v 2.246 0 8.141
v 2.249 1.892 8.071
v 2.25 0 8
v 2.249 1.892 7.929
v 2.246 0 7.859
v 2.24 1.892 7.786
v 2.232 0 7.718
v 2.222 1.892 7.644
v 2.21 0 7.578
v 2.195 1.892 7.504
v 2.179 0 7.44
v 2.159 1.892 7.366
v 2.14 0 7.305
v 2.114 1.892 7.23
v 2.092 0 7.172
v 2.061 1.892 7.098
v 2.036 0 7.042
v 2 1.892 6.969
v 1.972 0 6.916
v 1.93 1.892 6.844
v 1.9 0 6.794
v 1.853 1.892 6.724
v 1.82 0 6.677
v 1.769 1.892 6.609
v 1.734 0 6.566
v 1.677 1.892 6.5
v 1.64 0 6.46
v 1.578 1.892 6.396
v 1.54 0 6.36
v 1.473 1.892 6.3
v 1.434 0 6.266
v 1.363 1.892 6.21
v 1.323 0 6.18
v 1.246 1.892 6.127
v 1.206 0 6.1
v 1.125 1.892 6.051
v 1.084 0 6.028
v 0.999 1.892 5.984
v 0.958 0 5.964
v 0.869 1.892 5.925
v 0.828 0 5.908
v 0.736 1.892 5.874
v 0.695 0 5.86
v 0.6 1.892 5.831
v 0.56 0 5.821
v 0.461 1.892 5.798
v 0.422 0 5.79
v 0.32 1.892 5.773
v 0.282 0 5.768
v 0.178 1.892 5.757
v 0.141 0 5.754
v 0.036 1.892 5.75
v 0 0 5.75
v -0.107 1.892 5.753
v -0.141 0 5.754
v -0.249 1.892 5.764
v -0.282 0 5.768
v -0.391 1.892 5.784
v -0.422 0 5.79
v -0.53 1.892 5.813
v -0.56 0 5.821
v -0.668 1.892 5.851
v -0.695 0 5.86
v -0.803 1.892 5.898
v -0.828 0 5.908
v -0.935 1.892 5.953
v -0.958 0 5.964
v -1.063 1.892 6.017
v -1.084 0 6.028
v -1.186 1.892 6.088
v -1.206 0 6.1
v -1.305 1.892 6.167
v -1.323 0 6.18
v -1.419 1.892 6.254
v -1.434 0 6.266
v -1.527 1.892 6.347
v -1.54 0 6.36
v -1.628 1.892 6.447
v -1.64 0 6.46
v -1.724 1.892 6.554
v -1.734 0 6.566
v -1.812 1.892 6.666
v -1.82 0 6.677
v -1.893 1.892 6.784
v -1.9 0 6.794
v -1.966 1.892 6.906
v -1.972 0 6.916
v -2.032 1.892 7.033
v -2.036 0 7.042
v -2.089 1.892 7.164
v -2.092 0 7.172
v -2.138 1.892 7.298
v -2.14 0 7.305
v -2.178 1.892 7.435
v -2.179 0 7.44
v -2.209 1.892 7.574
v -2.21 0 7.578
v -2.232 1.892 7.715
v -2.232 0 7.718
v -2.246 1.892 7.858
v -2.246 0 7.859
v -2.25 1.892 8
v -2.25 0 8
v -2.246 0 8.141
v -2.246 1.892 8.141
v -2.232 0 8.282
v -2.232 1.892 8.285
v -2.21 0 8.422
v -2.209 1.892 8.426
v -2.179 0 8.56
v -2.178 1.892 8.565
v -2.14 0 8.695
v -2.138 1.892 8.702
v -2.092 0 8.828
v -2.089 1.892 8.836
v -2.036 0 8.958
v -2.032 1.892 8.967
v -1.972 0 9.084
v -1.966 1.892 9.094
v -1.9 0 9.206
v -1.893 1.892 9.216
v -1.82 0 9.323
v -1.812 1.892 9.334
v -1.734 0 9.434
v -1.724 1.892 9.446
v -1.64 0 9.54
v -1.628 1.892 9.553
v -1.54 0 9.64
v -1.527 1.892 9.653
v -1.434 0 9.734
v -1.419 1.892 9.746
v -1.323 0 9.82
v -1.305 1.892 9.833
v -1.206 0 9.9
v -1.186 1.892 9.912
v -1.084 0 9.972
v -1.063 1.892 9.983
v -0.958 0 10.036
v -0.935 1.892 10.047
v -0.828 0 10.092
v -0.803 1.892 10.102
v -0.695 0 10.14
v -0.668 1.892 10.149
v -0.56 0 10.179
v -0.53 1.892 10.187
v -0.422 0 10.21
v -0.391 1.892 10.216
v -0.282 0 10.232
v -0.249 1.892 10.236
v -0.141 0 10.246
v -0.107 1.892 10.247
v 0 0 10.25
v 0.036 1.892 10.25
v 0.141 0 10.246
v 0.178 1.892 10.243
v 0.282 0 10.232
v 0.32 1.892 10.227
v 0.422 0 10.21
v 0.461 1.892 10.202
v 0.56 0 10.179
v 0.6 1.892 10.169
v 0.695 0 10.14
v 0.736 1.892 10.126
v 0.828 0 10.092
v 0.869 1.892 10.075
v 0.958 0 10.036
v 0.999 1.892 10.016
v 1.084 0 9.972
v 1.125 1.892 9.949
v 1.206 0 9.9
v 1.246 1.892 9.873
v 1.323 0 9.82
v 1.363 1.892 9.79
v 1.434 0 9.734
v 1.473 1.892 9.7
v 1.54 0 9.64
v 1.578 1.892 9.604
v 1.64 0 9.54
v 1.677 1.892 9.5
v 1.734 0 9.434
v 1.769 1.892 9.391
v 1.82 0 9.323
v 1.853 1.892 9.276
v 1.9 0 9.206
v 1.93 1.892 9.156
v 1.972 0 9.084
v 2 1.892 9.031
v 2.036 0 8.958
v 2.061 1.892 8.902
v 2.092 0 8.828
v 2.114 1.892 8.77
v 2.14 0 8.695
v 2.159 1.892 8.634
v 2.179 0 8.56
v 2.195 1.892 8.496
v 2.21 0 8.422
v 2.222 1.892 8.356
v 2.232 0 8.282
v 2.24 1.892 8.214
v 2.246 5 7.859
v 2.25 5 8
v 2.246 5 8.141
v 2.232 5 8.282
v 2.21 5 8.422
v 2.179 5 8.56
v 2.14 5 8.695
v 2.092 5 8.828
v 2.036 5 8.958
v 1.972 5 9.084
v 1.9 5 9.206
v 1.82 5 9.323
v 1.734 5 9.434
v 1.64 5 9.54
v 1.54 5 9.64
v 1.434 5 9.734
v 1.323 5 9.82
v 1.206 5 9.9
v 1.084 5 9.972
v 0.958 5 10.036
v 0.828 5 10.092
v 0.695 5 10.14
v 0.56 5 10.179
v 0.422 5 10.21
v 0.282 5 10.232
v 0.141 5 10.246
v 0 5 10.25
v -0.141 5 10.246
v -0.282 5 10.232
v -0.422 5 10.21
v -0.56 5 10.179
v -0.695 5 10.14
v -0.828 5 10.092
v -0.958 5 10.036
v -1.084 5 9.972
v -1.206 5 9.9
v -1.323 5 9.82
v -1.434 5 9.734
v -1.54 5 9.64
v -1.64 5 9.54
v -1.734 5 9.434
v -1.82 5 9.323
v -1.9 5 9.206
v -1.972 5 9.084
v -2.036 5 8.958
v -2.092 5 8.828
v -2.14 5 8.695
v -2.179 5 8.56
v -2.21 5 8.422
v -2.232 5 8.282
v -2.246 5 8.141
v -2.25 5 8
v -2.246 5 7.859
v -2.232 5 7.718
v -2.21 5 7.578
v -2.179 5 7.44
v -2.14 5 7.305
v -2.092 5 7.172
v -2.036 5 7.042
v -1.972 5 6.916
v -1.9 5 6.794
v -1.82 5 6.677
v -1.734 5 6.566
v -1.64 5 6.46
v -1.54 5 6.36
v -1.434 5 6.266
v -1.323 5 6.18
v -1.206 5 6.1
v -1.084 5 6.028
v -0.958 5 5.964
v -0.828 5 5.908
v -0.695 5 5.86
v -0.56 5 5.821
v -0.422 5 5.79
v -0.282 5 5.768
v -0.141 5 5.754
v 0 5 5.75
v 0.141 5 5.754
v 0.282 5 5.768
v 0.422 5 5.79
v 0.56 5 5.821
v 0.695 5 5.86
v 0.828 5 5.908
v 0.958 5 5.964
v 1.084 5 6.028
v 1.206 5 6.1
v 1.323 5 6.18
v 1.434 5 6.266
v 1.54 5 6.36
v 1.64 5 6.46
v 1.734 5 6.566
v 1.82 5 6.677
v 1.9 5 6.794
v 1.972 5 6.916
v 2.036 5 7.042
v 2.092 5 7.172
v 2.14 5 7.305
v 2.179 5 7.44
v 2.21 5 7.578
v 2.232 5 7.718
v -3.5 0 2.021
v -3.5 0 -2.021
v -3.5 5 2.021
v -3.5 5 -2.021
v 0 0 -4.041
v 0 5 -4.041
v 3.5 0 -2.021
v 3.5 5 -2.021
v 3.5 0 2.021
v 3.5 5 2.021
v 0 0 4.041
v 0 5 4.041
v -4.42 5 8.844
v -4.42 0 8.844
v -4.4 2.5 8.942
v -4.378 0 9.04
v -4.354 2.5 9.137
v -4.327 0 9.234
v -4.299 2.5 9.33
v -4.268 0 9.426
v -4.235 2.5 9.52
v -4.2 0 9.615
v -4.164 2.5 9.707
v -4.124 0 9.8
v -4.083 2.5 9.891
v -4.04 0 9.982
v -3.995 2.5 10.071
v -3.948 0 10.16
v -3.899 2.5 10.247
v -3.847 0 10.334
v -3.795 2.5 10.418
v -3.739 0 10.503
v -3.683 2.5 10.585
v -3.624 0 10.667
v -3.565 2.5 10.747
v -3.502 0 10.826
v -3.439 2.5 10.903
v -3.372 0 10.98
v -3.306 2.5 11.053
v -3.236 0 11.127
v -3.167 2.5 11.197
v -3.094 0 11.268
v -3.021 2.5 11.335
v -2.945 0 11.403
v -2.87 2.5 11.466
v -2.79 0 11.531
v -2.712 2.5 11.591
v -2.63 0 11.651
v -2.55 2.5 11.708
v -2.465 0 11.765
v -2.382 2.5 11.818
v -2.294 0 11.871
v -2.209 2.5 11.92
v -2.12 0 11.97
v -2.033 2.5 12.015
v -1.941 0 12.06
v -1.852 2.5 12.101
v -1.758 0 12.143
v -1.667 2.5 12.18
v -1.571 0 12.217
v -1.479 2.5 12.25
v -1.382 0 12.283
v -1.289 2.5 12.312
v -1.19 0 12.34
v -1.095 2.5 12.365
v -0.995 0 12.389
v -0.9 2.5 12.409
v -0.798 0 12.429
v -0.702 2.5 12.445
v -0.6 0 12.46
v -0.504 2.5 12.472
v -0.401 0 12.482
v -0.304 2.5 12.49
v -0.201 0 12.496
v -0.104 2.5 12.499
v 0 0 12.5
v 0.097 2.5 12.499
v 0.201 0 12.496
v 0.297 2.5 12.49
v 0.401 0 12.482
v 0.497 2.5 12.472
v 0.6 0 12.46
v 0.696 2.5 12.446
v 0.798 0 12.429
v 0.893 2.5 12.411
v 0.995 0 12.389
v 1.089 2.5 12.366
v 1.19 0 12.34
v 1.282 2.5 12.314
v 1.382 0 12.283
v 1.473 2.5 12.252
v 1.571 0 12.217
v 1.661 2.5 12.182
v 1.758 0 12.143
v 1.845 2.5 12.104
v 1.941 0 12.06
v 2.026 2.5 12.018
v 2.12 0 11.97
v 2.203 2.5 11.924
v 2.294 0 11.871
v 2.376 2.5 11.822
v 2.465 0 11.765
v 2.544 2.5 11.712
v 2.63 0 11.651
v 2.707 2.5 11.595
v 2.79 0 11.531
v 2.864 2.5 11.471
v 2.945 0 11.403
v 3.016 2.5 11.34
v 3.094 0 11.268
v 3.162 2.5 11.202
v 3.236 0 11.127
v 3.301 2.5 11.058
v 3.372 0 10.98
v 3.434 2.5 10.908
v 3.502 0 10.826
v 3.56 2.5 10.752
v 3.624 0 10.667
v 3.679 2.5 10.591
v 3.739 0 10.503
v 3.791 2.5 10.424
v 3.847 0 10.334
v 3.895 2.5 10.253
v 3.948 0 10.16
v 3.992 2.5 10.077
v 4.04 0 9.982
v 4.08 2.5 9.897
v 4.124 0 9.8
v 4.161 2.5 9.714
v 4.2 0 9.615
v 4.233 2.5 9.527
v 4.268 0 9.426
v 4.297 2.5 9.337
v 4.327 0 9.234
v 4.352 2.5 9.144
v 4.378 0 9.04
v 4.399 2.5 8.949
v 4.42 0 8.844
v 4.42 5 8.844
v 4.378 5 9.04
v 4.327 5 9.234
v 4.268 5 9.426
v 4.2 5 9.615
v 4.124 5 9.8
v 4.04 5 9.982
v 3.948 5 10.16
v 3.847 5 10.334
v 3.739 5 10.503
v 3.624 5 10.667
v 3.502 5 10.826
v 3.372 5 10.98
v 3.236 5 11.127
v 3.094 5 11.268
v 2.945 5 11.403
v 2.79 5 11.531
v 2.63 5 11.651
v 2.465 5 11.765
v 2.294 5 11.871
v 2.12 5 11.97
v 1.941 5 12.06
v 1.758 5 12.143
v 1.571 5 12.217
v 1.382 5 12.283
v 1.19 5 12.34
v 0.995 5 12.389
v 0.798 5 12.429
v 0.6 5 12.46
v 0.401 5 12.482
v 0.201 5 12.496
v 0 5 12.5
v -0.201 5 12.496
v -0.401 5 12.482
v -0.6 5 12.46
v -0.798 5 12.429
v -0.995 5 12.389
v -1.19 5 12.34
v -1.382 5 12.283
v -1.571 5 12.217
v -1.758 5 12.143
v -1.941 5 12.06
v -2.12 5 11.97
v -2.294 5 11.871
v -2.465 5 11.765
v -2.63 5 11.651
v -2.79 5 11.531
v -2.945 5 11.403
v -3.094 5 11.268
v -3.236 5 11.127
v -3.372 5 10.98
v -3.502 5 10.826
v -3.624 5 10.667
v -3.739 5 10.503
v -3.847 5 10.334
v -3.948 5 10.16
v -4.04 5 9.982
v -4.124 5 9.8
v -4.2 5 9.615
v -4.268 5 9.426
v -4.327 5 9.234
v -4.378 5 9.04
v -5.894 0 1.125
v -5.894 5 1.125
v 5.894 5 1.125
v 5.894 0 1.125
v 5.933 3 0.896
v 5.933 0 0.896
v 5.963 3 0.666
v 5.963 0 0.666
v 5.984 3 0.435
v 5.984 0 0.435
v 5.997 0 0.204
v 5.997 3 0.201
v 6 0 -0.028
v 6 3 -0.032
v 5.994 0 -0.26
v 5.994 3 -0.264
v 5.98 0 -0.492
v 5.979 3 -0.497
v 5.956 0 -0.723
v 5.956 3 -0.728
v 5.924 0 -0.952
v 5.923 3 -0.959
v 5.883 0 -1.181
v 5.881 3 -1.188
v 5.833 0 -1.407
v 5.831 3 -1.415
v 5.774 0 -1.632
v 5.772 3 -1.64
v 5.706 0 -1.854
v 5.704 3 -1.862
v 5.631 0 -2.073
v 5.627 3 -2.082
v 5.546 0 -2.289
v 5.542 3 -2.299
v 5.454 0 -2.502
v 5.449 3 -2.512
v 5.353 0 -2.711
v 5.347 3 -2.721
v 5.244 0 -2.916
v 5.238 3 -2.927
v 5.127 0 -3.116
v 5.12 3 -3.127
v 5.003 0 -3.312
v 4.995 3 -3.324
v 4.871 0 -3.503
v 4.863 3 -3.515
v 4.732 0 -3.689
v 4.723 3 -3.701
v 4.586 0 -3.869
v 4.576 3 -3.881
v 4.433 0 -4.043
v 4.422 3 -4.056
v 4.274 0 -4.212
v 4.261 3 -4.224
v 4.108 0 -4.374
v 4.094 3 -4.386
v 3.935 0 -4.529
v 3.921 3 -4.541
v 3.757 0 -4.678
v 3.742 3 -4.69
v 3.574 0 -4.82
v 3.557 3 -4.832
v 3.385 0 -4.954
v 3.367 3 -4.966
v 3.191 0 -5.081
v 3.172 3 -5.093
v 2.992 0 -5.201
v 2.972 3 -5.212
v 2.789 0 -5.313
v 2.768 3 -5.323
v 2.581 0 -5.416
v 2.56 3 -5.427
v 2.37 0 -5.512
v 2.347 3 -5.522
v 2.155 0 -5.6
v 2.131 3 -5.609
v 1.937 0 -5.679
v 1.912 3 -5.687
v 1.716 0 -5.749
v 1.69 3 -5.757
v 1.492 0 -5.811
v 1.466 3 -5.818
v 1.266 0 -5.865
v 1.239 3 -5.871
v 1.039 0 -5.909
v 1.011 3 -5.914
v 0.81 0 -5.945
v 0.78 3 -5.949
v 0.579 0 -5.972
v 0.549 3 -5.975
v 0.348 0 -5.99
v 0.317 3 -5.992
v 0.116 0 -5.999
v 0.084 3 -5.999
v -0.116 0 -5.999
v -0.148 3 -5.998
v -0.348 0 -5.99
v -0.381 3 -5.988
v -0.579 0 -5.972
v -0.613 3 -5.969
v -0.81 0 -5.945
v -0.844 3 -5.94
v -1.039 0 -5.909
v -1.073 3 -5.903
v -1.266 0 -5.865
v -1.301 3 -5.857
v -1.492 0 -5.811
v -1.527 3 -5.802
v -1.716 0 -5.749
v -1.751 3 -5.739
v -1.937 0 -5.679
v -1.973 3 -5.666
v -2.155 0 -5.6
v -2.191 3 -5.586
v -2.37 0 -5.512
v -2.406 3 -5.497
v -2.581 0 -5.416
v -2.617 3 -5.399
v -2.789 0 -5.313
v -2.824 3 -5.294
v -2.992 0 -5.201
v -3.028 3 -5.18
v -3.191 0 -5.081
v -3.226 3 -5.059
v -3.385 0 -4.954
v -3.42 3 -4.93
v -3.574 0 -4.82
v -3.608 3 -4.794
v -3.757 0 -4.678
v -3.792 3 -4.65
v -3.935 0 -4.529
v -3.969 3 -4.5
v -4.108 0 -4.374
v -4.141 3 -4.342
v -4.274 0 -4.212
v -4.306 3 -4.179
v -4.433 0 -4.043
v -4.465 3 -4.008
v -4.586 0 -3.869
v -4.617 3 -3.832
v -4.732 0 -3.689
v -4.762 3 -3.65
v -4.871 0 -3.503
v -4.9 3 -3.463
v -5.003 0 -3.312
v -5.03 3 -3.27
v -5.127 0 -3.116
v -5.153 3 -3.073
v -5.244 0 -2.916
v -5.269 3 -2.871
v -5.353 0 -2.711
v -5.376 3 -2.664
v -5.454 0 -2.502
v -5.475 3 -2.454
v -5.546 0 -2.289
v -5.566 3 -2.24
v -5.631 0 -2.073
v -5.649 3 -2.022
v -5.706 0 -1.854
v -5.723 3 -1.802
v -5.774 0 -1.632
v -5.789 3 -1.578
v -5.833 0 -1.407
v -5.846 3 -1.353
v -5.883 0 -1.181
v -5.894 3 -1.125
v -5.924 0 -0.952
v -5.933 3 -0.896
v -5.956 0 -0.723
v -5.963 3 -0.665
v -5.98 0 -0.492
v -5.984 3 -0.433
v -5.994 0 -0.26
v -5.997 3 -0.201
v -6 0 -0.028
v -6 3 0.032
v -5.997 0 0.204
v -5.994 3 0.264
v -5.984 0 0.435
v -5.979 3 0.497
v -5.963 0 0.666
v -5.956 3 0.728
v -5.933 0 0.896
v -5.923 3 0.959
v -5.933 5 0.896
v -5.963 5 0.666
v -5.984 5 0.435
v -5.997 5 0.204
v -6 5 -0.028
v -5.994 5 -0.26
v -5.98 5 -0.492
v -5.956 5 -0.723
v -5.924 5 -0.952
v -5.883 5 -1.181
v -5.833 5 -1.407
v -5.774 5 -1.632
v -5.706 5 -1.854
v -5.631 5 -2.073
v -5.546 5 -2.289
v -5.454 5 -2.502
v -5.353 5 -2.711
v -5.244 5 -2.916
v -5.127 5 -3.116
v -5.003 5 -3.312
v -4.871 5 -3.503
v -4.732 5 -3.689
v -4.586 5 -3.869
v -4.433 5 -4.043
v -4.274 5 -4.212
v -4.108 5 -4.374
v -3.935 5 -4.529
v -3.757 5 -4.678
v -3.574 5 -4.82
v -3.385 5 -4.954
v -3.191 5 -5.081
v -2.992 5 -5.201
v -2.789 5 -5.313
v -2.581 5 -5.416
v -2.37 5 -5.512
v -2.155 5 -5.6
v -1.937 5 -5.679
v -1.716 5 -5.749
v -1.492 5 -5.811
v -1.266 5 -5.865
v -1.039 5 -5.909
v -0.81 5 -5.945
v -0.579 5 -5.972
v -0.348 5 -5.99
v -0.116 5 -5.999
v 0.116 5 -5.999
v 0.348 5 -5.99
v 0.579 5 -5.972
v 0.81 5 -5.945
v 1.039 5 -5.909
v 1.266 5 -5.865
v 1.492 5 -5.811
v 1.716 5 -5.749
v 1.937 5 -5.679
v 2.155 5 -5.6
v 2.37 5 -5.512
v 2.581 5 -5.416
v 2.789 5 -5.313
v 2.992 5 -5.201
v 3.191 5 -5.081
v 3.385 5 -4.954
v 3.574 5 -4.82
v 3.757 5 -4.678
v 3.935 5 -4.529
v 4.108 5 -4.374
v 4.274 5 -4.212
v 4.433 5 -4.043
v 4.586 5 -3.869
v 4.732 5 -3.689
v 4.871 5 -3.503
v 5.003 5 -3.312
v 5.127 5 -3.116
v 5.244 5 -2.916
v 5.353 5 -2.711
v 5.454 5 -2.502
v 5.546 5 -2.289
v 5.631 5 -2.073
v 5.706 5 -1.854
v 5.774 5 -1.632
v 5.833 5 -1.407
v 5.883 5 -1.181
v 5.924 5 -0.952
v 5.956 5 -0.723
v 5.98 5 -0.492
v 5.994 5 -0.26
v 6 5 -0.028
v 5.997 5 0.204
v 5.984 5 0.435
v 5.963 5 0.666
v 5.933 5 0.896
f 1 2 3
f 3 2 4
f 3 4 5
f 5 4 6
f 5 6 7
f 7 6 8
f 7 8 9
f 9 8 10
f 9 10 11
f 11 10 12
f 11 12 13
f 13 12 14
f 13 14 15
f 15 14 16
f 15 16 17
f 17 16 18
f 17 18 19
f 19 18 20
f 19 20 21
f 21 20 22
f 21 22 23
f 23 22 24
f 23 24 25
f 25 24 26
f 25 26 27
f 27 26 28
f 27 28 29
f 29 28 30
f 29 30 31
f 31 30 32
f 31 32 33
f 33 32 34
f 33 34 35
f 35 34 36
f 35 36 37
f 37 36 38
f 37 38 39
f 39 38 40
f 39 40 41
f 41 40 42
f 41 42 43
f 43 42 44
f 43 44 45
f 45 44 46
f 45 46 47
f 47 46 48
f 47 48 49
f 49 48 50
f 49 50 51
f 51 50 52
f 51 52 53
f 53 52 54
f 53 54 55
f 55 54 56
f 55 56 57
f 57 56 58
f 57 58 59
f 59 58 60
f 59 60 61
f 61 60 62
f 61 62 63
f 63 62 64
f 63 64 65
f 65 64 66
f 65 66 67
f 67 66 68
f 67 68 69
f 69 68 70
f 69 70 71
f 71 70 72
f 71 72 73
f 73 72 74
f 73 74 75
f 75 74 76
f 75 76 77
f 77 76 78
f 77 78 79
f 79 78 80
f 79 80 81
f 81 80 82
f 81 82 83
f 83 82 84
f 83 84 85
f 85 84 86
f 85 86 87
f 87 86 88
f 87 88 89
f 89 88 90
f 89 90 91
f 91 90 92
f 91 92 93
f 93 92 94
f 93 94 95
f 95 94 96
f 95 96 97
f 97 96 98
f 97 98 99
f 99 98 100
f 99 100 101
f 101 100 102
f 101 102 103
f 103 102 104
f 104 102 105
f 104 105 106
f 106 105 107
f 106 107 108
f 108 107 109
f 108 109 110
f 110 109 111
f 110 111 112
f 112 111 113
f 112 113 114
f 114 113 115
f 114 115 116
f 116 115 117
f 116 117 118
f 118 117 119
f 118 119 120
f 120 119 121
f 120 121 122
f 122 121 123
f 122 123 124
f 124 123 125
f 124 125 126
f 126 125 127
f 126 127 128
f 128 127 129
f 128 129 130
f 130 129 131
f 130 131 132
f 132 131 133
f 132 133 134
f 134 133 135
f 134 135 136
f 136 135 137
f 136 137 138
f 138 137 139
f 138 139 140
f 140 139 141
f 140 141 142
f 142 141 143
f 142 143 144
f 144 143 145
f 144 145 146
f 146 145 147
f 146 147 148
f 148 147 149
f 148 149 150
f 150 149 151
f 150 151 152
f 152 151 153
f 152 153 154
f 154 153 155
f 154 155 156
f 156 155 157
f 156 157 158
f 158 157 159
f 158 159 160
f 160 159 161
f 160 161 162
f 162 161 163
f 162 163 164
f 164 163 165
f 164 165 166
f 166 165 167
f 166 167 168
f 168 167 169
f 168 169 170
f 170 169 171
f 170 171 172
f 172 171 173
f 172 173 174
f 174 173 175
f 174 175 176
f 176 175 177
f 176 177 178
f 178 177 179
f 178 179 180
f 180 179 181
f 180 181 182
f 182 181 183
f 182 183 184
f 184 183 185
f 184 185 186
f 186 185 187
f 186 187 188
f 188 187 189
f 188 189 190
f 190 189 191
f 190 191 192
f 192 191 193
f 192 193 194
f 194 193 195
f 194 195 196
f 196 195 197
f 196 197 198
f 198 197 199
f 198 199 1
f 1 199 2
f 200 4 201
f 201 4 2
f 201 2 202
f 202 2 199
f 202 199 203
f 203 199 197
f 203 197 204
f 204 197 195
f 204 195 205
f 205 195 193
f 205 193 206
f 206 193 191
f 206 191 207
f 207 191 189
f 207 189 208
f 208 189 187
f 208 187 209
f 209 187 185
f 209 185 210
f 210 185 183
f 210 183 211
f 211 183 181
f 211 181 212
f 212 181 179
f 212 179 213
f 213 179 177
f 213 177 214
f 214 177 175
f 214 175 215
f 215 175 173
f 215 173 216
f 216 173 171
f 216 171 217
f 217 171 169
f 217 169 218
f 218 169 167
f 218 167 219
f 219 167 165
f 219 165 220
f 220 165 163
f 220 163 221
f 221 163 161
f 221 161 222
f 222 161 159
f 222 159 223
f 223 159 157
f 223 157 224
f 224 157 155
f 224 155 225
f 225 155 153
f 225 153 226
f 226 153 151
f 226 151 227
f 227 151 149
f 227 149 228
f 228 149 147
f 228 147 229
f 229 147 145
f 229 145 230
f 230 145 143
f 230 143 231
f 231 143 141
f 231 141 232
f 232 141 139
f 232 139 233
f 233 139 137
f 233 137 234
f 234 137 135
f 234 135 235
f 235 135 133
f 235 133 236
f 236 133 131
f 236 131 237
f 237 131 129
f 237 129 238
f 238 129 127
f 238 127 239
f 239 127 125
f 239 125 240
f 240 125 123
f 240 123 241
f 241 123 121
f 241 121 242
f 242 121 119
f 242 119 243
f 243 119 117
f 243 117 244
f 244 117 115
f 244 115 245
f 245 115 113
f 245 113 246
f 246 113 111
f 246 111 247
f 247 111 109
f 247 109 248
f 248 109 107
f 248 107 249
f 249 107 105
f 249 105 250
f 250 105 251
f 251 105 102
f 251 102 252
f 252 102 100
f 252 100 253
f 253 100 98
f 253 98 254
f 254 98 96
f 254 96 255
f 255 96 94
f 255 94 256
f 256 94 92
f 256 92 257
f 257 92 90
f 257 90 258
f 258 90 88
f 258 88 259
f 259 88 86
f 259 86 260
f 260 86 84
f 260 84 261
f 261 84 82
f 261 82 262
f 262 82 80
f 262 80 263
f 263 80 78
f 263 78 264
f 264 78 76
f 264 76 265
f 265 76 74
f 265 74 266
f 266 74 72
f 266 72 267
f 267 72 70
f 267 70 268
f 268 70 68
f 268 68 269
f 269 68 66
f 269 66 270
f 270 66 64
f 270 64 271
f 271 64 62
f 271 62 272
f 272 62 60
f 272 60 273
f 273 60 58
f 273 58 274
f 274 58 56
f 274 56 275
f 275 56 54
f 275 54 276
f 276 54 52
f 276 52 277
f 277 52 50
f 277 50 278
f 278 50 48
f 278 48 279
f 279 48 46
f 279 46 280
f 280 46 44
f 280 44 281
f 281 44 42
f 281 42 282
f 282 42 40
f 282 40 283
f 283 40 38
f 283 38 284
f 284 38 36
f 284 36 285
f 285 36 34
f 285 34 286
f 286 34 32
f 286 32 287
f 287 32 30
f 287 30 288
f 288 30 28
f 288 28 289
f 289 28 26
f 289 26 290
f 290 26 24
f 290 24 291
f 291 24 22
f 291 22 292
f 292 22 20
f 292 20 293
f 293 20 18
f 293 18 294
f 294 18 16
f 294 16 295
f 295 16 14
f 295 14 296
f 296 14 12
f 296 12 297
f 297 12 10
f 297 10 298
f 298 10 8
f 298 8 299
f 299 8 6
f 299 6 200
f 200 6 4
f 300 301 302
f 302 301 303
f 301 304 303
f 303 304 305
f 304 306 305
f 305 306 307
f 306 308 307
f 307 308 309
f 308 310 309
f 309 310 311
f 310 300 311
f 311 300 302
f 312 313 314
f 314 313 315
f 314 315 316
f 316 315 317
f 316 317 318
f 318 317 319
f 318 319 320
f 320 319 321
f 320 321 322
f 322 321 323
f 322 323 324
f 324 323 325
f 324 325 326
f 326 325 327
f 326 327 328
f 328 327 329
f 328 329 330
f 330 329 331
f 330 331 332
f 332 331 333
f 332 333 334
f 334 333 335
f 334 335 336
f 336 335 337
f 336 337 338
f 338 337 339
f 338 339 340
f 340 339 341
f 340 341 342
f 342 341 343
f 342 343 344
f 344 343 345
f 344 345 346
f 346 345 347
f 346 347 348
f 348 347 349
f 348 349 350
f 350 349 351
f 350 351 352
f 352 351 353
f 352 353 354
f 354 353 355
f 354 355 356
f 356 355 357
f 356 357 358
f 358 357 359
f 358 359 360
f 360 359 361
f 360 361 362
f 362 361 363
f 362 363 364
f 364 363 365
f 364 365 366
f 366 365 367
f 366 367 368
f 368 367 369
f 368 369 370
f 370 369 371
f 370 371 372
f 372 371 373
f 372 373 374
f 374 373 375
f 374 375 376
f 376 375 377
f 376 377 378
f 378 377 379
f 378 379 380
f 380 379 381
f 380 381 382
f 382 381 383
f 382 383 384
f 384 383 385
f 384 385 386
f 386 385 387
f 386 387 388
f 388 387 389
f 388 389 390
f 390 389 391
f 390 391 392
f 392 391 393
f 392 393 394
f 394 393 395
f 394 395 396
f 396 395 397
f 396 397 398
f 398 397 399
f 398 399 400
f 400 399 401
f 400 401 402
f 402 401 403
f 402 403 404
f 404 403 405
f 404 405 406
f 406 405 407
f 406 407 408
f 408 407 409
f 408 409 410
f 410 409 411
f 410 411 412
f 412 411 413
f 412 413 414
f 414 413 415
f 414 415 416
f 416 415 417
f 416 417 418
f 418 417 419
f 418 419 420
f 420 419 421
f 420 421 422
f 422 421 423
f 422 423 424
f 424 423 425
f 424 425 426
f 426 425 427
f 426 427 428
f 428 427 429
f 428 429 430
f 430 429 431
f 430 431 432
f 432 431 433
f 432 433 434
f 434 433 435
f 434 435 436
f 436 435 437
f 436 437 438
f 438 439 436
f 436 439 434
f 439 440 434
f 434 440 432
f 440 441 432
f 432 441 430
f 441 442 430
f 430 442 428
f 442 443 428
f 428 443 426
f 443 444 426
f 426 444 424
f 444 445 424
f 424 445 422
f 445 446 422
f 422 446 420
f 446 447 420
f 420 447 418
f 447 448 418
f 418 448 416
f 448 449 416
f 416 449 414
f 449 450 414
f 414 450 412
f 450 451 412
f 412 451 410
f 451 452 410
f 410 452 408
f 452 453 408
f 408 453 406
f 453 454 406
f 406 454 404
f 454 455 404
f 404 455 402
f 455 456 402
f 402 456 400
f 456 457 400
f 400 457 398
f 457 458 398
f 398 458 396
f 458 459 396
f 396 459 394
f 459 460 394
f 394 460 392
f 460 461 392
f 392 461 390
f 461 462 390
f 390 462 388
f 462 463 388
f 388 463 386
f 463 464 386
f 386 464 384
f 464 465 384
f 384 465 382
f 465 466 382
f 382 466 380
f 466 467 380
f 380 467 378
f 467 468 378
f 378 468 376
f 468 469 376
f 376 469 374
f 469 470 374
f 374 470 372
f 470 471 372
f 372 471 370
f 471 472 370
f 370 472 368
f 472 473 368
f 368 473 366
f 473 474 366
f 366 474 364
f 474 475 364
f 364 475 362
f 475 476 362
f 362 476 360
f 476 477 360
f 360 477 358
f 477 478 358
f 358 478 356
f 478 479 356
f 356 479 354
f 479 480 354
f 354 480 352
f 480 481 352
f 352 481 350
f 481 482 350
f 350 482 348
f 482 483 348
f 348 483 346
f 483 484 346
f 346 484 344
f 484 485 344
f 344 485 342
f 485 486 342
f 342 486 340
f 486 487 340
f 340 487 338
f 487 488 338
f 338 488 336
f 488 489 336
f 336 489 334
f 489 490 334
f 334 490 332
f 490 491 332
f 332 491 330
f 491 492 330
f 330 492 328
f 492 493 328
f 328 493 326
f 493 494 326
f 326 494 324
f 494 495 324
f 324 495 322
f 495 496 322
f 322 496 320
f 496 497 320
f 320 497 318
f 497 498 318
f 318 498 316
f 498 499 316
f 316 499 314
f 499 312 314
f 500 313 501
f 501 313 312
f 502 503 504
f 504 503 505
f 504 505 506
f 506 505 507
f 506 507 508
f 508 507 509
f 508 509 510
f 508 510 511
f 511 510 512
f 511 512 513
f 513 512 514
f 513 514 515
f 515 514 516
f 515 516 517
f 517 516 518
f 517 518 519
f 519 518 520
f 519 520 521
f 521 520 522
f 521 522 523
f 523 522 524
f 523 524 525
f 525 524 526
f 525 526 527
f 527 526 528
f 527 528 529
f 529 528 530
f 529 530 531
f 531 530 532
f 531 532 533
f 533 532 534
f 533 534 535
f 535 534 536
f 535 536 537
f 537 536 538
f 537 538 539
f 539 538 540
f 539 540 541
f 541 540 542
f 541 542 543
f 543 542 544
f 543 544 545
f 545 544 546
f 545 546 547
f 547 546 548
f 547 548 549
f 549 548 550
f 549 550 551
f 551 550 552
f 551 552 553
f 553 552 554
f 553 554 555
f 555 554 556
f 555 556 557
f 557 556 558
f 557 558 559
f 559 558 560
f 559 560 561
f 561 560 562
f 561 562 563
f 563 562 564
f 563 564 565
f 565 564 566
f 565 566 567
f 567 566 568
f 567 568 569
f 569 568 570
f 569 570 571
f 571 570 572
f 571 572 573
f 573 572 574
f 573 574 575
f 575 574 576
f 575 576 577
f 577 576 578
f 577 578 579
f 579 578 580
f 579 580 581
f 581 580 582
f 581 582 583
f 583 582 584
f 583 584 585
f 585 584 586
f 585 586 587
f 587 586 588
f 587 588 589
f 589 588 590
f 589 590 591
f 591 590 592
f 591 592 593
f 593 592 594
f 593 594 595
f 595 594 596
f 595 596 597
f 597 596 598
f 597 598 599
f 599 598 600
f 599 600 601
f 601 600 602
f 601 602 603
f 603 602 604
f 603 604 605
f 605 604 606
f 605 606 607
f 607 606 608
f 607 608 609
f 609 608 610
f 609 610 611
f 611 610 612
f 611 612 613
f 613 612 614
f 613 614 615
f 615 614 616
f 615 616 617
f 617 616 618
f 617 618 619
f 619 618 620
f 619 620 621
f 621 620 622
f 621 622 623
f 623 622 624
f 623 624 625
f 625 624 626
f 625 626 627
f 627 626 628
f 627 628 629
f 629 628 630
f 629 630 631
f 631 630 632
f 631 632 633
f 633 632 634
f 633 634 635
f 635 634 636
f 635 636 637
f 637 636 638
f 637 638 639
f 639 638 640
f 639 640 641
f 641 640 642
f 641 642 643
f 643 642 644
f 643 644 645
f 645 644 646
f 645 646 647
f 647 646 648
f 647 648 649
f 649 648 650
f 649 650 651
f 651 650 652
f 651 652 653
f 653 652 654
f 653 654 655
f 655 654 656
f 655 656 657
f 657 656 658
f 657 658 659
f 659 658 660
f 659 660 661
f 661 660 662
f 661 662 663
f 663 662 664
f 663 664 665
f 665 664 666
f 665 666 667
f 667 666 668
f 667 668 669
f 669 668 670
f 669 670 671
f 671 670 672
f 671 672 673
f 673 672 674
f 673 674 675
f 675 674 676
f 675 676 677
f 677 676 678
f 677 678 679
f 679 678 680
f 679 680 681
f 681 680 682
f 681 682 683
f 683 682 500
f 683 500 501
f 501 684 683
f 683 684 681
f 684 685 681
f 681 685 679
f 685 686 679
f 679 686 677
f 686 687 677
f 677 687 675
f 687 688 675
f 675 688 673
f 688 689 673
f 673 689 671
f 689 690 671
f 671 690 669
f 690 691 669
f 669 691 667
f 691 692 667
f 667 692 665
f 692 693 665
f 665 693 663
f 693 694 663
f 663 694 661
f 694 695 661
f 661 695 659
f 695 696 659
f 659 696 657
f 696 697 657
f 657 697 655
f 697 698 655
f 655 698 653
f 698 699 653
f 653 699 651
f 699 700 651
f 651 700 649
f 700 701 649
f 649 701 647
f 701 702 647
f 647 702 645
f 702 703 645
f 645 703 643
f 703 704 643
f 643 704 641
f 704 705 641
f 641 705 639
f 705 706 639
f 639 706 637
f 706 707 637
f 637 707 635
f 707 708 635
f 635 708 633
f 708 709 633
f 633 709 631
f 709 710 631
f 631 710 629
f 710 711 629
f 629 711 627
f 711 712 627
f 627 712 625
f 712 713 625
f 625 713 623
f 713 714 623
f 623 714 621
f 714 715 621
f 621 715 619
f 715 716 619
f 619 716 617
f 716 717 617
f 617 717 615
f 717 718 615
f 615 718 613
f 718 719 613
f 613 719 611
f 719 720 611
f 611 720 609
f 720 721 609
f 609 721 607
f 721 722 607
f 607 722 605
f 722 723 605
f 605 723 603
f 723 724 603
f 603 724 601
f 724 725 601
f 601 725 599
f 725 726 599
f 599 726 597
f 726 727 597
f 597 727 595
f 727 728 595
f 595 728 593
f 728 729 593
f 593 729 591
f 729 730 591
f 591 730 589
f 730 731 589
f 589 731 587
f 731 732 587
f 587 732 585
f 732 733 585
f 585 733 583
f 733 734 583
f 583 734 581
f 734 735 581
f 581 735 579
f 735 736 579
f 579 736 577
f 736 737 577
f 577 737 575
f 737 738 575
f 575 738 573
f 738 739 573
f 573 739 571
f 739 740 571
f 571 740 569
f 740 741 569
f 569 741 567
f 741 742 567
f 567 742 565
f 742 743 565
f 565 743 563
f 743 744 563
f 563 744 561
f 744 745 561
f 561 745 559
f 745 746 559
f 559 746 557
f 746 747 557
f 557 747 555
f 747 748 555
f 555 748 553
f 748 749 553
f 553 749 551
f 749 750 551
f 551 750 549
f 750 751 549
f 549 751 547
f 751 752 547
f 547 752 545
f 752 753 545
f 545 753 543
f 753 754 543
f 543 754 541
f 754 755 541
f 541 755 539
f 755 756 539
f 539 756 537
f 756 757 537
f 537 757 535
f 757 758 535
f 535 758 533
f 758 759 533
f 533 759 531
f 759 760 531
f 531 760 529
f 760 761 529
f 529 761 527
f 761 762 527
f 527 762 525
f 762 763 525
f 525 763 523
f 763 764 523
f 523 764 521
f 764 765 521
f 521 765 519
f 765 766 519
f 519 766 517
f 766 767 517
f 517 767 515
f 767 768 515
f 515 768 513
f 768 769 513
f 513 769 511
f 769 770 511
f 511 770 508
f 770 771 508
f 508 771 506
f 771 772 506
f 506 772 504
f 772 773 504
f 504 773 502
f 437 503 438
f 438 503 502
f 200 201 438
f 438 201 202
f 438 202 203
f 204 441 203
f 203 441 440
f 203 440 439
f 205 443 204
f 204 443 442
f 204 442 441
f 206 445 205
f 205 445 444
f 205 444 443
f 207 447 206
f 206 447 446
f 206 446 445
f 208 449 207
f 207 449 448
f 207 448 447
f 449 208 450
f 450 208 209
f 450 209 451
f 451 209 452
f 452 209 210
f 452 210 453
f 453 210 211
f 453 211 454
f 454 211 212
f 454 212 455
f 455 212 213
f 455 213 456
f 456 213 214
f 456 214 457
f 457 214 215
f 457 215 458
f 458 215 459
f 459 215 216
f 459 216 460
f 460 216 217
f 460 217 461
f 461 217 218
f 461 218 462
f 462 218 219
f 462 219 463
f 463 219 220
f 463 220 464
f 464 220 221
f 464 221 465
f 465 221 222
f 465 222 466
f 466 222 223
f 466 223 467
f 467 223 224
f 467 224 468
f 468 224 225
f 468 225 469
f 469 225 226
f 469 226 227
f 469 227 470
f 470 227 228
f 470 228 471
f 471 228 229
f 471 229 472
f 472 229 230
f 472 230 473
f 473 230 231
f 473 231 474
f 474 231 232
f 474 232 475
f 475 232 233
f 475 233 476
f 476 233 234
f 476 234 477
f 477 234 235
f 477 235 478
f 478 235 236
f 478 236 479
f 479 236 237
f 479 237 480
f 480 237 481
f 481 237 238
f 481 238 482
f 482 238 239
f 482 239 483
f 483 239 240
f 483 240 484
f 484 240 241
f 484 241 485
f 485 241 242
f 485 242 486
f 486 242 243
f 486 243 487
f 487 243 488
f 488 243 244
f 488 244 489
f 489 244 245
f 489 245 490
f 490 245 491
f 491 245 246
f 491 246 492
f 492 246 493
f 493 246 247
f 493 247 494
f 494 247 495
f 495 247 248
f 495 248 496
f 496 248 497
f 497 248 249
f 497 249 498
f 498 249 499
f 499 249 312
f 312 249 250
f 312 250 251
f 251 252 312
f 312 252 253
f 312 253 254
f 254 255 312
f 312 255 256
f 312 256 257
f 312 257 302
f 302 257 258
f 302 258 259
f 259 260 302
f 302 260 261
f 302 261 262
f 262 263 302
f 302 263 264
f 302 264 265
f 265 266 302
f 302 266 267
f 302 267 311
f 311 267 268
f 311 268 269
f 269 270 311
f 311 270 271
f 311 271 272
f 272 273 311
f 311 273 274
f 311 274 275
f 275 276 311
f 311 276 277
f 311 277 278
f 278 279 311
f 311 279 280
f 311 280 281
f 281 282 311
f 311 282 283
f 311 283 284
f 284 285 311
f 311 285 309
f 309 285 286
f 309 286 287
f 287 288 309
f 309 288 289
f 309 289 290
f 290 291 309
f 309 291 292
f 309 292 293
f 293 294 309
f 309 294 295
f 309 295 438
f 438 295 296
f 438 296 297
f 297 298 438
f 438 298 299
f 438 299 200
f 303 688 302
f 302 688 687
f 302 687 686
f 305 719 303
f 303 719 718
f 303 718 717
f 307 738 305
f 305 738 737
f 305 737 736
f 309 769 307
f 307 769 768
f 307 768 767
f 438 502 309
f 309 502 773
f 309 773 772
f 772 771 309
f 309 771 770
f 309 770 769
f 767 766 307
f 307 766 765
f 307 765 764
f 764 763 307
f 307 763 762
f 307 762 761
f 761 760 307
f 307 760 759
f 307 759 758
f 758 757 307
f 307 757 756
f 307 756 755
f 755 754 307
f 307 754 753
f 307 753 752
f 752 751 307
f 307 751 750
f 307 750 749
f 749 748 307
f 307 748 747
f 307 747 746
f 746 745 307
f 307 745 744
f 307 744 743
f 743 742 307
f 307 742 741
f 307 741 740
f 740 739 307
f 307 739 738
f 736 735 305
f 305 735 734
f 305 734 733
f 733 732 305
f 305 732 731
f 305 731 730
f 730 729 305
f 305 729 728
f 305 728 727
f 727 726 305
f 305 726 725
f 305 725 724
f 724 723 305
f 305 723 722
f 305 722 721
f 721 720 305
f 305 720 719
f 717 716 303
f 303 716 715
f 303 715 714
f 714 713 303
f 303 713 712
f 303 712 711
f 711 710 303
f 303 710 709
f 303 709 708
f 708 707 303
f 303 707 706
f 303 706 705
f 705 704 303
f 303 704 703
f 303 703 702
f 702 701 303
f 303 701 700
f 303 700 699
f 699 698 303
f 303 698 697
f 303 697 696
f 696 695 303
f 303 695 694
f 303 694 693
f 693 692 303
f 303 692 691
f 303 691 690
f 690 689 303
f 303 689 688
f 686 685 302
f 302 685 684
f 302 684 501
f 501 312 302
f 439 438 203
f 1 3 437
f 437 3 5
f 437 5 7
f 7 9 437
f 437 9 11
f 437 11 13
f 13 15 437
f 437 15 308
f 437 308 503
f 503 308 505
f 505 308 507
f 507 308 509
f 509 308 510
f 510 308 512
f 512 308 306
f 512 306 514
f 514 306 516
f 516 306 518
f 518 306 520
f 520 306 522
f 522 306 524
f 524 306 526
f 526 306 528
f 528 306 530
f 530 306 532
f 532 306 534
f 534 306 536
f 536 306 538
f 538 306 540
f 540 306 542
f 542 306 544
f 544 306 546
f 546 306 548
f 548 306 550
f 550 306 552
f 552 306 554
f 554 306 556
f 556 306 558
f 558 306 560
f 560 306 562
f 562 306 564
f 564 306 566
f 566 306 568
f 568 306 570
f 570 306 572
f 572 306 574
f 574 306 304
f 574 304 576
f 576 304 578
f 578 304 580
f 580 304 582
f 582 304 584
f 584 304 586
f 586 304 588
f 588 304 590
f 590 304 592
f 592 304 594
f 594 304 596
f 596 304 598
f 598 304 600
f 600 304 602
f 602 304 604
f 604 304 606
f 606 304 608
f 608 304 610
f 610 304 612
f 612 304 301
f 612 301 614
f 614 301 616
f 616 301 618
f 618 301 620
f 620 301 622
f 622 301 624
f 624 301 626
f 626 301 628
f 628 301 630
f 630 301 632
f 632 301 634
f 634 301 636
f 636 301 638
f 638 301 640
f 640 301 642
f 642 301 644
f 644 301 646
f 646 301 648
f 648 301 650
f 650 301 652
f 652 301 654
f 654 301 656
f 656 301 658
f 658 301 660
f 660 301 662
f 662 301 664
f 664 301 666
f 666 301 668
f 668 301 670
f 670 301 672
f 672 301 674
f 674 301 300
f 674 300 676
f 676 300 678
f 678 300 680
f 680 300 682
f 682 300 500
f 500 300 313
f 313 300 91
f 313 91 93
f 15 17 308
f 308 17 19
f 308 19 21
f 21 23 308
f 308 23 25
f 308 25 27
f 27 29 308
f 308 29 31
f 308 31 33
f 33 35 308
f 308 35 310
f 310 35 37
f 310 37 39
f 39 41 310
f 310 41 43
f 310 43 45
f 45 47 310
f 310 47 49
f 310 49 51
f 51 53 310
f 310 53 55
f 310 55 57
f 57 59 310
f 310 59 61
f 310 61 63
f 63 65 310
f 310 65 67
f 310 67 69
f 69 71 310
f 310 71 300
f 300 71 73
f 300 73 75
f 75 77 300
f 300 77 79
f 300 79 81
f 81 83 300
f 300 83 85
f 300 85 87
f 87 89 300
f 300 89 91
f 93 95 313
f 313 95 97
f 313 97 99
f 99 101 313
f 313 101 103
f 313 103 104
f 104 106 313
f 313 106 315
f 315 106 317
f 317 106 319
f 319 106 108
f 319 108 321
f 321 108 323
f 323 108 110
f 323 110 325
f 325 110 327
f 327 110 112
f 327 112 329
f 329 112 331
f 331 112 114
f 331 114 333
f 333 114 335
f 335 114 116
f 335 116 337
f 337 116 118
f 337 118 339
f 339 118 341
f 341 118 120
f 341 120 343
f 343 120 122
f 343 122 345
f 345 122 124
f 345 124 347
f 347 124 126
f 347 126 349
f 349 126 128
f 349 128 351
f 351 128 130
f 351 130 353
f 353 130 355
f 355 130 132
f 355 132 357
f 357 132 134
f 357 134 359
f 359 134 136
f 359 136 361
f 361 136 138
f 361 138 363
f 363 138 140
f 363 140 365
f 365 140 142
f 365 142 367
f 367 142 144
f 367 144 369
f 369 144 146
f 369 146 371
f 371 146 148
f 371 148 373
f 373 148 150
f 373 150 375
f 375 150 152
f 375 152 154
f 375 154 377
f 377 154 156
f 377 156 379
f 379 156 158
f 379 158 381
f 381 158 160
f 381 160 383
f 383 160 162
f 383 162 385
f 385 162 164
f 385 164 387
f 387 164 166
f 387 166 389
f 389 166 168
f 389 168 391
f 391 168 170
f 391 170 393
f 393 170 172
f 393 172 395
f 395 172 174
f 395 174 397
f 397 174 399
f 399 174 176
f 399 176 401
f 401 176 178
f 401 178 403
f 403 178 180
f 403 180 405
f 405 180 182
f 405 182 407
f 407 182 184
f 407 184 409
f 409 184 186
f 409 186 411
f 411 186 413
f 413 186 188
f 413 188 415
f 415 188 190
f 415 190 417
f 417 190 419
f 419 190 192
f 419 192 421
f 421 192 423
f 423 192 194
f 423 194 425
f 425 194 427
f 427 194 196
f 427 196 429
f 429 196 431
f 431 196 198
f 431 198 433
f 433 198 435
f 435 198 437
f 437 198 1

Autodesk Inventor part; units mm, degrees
ref_plane "YZ Plane" through (0, 0, 0) normal (1, 0, 0) x (0, 1, 0)
ref_plane "XZ Plane" through (0, 0, 0) normal (0, 1, 0) x (-1, 0, 0)
ref_plane "XY Plane" through (0, 0, 0) normal (0, 0, 1) x (1, 0, 0)
sketch "Sketch1" plane through (0, 0, 0) normal (0, 1, 0) x (-1, 0, 0)
  line L0 (3.5, 2.0207) -> (0, 4.0415)
  line L1 (0, 4.0415) -> (-3.5, 2.0207)
  line L2 (-3.5, 2.0207) -> (-3.5, -2.0207)
  line L3 (-3.5, -2.0207) -> (0, -4.0415)
  line L4 (-4.4202, 8.8438) -> (-5.8936, 1.125)
  arc A0 (4.4202, 8.8438) -> (-4.4202, 8.8438) centre (0, 8) ccw
  line L5 (5.8936, 1.125) -> (4.4202, 8.8438)
  line L6 (0, -4.0415) -> (3.5, -2.0207)
  arc A1 (-5.8936, 1.125) -> (5.8936, 1.125) centre (0, 0) ccw
  line L7 (3.5, -2.0207) -> (3.5, 2.0207)
extrude "Extrusion1" add sketch "Sketch1" along normal blind 5
sketch "Sketch2" plane through (0, 5, 0) normal (0, 1, 0) x (1, 0, 0)
  point P0 (0, -8)
hole "Hole1" at (0, 5, 8) direction (0, -1, 0) diameter 4.5 depth 5
properties part number "Piston Nut trap" material "ASA Plastic"
